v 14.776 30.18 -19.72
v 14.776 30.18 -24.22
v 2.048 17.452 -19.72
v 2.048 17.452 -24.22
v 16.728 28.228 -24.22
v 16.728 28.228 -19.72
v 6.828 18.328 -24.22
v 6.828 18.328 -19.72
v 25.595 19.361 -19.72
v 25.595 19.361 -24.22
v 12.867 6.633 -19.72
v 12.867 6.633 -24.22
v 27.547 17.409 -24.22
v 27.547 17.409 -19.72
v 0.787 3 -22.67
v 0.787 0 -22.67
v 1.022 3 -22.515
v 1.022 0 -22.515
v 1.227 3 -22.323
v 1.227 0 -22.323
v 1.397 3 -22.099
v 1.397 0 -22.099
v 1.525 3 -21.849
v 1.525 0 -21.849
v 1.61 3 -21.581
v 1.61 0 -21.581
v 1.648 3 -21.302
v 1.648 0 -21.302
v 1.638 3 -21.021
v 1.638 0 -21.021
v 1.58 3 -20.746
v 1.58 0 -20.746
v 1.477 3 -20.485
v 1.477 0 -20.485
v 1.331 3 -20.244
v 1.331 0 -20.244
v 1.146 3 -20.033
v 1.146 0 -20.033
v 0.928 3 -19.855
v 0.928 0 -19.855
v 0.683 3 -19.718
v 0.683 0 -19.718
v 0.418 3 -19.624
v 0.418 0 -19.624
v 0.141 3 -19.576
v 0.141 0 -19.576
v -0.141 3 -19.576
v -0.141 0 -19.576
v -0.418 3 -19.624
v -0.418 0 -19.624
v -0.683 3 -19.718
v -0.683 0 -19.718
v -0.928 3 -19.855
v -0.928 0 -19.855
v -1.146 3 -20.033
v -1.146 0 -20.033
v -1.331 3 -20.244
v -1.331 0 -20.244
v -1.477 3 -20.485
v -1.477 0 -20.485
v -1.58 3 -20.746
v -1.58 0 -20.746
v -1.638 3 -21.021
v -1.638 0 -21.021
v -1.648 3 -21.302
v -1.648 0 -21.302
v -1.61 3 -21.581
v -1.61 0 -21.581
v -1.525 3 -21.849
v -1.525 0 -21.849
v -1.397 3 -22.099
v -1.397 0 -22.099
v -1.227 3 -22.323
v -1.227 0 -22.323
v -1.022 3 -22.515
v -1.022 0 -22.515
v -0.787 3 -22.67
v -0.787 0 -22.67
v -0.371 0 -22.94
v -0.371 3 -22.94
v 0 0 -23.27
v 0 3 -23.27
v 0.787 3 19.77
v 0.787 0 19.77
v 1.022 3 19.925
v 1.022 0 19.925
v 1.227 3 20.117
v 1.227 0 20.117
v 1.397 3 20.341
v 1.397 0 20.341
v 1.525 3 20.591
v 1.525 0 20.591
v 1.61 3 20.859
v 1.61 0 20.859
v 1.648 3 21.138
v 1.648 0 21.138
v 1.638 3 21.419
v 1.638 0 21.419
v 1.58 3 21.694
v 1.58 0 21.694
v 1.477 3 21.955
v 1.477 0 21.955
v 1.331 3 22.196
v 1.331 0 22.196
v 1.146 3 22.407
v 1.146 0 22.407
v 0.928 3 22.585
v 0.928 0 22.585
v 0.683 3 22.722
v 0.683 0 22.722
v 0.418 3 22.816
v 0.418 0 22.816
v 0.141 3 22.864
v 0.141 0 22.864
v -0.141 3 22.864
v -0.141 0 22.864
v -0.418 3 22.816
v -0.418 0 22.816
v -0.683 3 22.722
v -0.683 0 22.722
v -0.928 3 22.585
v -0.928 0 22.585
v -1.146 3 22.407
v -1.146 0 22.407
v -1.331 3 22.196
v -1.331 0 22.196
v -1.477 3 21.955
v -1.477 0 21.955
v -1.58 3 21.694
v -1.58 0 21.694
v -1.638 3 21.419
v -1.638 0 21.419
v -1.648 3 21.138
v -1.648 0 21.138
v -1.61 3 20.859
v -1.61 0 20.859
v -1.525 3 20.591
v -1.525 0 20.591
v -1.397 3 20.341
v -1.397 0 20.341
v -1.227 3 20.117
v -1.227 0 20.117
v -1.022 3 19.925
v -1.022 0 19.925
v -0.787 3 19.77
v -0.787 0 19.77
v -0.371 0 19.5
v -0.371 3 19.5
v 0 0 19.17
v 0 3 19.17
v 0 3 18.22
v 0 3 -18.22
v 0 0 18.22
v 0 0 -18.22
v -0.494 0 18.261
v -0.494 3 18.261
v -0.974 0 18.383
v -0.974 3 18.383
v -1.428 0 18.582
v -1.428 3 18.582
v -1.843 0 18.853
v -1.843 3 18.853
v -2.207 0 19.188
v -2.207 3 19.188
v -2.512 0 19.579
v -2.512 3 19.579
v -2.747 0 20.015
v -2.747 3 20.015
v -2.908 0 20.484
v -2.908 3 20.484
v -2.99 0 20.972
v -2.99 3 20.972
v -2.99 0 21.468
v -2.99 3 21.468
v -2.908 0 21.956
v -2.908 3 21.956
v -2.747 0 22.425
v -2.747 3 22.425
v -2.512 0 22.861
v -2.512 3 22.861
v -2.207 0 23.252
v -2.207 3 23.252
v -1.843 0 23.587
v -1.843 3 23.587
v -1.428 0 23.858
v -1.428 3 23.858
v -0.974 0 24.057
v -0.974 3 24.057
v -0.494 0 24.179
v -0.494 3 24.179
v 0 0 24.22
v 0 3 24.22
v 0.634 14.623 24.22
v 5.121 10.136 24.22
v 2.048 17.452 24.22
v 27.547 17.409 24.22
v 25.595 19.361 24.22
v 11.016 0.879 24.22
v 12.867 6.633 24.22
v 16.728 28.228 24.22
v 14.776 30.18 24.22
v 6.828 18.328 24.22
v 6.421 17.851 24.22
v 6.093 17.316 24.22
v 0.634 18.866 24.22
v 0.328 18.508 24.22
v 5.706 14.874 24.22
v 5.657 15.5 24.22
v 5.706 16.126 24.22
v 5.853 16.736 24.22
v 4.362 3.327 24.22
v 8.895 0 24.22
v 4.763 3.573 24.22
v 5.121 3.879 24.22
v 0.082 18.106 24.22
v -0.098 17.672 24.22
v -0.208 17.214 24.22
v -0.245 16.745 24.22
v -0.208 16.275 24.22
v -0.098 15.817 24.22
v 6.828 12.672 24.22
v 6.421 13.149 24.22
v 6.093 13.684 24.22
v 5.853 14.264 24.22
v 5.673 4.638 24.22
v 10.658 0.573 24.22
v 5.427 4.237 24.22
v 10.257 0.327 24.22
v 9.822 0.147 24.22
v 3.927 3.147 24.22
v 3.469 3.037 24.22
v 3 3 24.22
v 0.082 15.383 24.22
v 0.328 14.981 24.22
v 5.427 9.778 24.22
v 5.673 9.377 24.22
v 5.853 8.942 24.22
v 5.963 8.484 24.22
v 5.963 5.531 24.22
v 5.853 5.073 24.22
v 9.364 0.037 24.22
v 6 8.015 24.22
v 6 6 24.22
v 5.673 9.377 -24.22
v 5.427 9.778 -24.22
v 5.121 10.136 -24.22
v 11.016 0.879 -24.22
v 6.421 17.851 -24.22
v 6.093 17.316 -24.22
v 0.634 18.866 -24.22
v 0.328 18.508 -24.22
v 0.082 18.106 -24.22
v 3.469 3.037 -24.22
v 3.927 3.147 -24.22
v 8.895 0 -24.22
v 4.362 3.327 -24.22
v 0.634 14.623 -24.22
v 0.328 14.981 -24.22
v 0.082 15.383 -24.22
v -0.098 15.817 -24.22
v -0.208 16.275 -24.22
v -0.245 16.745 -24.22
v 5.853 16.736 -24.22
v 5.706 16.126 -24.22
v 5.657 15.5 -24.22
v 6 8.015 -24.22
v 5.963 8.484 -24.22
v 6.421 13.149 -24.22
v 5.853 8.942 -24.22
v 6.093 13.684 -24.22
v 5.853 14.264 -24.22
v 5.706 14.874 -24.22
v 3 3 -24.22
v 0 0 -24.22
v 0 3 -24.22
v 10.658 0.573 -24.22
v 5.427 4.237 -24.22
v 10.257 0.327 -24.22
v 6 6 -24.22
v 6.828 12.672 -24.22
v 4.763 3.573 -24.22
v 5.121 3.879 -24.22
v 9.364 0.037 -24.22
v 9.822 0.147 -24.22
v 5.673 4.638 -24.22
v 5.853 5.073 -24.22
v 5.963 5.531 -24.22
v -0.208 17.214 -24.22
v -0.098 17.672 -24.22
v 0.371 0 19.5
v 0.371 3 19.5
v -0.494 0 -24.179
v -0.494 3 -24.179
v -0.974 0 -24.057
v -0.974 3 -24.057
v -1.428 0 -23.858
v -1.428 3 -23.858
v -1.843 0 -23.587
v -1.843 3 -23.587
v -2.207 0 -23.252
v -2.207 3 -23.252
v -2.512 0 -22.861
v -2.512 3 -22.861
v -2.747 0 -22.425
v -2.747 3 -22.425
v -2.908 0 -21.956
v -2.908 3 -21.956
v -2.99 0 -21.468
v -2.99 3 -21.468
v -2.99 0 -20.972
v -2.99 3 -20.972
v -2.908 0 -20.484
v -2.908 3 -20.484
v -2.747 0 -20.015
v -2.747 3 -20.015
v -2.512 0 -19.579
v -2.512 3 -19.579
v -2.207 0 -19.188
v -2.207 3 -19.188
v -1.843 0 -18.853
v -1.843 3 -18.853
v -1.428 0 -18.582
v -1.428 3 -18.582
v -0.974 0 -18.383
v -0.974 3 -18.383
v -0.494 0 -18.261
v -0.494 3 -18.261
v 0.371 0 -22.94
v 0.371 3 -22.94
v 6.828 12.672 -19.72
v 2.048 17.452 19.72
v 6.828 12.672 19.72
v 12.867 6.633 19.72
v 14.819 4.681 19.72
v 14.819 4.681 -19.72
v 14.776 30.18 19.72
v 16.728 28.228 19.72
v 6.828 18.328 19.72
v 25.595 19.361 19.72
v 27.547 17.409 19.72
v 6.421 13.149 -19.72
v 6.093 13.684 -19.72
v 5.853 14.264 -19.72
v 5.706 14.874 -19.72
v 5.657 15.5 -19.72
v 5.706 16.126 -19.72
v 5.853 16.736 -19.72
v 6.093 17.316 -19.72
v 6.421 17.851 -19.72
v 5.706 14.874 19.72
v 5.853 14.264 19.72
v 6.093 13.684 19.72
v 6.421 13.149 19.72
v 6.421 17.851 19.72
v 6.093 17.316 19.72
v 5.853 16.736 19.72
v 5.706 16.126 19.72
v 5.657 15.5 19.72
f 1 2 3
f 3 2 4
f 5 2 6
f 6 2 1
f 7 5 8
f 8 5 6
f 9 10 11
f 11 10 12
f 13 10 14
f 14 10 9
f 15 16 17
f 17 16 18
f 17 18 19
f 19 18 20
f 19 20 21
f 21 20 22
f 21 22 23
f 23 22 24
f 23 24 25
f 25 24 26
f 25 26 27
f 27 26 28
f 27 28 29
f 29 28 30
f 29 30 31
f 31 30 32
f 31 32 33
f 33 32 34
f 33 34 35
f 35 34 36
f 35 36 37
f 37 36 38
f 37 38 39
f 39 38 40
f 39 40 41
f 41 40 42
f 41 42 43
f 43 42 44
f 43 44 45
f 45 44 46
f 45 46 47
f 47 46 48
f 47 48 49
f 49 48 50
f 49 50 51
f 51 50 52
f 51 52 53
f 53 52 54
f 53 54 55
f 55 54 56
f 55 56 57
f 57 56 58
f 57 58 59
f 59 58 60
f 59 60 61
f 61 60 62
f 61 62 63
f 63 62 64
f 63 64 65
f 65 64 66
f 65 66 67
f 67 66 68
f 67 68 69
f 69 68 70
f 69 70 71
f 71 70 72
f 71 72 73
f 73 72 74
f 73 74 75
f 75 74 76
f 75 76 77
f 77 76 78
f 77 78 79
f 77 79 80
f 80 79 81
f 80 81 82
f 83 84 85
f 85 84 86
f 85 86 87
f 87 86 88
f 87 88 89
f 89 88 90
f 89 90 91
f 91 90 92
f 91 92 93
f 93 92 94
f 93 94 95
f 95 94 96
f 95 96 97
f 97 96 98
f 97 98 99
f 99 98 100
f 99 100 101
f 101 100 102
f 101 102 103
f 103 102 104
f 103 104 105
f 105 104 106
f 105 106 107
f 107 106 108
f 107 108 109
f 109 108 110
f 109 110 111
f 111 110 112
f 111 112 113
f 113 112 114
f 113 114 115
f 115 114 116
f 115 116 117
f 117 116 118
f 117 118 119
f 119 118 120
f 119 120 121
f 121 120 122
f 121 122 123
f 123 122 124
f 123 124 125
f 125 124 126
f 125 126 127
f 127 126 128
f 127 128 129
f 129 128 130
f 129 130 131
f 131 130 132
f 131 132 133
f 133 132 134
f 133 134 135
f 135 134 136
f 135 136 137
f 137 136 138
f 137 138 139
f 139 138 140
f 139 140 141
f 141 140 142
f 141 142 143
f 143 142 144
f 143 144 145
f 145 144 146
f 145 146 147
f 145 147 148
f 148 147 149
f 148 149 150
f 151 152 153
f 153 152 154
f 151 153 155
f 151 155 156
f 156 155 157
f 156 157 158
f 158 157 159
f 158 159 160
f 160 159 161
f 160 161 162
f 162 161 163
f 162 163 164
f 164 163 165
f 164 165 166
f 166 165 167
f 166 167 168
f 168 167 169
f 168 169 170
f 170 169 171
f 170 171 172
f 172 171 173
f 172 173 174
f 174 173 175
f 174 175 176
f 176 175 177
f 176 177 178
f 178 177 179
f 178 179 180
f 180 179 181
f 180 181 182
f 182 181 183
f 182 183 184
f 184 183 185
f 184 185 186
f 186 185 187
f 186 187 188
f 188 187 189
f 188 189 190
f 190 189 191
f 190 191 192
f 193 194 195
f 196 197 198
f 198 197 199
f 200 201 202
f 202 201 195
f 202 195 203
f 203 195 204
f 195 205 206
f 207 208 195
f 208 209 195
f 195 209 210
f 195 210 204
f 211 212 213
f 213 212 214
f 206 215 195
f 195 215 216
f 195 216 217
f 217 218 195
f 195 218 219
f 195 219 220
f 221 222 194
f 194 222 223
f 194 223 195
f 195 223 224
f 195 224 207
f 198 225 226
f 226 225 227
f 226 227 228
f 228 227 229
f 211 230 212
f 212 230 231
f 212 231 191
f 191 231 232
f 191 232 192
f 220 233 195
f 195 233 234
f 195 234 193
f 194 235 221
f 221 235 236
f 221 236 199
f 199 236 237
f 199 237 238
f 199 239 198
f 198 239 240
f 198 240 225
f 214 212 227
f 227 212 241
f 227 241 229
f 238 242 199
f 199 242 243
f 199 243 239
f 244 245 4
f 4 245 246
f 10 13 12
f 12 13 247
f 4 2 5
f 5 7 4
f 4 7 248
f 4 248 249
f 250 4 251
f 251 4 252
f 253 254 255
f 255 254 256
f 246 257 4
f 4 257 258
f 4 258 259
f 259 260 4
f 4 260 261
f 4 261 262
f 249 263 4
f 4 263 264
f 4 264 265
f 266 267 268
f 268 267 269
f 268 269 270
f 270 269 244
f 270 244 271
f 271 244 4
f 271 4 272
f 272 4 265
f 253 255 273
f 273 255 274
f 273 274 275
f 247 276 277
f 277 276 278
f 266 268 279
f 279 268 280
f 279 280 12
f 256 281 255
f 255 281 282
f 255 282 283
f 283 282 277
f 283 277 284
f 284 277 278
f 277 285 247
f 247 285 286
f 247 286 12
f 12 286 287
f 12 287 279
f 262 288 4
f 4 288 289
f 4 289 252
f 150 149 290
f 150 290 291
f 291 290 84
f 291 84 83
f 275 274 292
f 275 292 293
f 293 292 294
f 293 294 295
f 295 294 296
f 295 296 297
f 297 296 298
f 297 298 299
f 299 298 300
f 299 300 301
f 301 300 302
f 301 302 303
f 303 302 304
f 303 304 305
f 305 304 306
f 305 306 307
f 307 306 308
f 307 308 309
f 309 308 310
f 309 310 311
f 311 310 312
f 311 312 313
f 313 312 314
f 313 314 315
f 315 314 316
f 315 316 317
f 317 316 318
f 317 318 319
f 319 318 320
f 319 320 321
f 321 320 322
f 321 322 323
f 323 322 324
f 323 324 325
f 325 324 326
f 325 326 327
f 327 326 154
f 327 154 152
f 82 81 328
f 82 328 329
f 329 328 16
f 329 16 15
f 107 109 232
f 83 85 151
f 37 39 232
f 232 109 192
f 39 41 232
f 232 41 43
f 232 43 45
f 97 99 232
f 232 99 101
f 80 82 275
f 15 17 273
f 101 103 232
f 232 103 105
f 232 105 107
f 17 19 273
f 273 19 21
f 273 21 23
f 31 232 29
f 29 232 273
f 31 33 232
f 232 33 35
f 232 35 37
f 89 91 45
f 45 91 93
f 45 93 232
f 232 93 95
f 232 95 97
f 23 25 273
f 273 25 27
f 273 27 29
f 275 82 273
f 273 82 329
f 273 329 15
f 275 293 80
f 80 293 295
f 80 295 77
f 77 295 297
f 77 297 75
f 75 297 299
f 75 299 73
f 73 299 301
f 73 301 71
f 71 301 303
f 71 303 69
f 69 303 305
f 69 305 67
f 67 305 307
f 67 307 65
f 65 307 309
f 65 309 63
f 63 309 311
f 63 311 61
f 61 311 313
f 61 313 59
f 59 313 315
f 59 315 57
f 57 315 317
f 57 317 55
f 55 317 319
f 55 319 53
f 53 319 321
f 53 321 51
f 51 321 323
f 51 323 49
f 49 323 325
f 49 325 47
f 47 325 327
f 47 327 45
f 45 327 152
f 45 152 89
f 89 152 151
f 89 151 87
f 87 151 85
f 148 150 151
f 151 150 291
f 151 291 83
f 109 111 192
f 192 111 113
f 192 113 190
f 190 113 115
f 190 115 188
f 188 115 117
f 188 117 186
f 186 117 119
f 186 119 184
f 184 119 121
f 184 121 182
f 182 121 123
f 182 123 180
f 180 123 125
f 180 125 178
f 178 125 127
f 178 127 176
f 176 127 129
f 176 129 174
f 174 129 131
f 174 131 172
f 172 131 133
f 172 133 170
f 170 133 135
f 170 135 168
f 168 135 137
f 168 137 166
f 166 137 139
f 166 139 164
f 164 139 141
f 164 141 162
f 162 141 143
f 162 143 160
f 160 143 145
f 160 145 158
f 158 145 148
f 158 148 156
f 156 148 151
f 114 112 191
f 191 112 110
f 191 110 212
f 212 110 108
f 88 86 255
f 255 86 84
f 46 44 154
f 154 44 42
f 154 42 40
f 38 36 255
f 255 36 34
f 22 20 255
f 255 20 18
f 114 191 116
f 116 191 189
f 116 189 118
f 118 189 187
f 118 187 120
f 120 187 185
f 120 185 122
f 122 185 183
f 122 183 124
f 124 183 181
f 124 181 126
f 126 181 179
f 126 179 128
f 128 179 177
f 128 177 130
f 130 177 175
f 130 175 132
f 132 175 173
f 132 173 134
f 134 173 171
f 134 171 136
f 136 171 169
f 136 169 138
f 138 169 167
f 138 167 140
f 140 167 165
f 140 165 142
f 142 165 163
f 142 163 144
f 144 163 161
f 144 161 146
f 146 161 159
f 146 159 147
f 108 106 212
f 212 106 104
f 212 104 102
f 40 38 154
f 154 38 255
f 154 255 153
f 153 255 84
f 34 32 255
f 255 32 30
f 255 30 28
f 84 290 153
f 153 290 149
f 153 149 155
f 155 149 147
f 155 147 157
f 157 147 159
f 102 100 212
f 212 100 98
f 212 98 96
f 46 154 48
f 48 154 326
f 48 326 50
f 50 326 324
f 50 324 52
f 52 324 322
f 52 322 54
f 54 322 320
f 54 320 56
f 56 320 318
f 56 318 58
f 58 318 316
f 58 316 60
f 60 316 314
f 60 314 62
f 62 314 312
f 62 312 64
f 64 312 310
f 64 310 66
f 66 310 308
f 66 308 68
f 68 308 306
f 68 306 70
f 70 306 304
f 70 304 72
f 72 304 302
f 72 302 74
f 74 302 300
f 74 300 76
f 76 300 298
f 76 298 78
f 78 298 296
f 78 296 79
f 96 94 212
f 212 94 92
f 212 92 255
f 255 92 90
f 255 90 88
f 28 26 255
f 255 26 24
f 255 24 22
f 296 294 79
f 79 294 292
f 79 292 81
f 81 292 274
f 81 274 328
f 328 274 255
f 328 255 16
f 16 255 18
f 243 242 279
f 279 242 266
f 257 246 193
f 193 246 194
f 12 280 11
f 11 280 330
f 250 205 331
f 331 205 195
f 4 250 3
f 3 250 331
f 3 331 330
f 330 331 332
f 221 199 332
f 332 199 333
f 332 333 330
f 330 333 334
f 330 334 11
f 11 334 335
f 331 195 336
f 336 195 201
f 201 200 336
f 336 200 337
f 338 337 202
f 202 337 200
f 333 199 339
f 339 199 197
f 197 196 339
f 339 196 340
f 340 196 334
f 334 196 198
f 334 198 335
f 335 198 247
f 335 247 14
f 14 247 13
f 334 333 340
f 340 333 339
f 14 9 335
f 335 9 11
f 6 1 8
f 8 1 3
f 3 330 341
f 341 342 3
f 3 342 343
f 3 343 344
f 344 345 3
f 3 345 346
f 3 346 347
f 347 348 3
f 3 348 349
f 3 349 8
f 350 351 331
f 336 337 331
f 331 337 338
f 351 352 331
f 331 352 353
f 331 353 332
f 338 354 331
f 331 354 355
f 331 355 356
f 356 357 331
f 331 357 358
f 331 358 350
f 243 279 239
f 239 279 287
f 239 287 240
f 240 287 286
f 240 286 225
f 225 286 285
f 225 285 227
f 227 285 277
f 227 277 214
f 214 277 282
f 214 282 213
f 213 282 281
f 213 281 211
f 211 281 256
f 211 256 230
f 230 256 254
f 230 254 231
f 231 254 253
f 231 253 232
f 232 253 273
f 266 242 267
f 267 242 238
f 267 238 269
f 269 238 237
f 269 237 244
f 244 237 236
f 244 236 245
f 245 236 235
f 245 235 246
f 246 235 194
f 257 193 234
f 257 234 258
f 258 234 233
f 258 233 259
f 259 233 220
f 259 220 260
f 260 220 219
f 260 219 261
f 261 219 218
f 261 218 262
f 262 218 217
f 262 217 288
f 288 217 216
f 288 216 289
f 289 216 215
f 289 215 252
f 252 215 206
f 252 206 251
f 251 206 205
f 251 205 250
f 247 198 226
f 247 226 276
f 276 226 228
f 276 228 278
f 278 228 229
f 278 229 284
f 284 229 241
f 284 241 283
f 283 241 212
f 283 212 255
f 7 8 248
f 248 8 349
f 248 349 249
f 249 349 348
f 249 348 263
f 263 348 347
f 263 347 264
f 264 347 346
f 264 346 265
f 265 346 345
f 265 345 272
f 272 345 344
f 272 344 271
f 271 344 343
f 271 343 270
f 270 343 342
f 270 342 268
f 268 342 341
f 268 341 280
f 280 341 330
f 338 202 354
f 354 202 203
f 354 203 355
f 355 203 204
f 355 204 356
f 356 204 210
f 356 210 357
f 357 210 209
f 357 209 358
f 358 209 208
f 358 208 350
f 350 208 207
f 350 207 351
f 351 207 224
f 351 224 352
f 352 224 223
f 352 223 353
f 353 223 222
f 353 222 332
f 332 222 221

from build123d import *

# Parameters (mm, degrees)
BOSS_EXTRUDE1_DEPTH      = 3
BOSS_EXTRUDE2_DEPTH      = 24.22
BOSS_EXTRUDE2_DEPTH_BACK = 24.22
SKETCH4_W                = 39.44
SKETCH4_H                = 18
CUT_EXTRUDE2_DEPTH       = 49.314655701
FILLET1_R                = 3
FILLET2_R                = 3
FILLET3_R                = 4


with BuildPart() as part:
    # Sketch1 → Boss-Extrude1 (new body)
    with BuildSketch(Plane(origin=(0, 0, 0), x_dir=(1, 0, 0), z_dir=(0, 1, 0))):
        with BuildLine():
            ThreePointArc((-2, 18.983932023), (-1.070466269, 18.417482923), (0, 18.22))
            Line((0, 18.22), (0, -18.22))
            ThreePointArc((0, -18.22), (-1.070466269, -18.417482923), (-2, -18.983932023))
            ThreePointArc((-2, -18.983932023), (-2.802517077, -22.290466269), (0, -24.22))
            Line((0, -24.22), (3, -24.22))
            Line((3, -24.22), (3, 24.22))
            Line((3, 24.22), (0, 24.22))
            ThreePointArc((0, 24.22), (-2.802517077, 22.290466269), (-2, 18.983932023))
        make_face()
        with BuildLine():
            ThreePointArc((0.787400787, -19.77), (1.41804642, -20.376409845), (1.65, -21.22))
            ThreePointArc((1.65, -21.22), (-0.843590155, -22.63804642), (-0.787400787, -19.77))
            ThreePointArc((-0.787400787, -19.77), (-0.370606333, -19.500307136), (0, -19.17))
            ThreePointArc((0, -19.17), (0.370606333, -19.500307136), (0.787400787, -19.77))
        make_face(mode=Mode.SUBTRACT)
        with BuildLine():
            ThreePointArc((0.787400787, 22.67), (1.41804642, 22.063590155), (1.65, 21.22))
            ThreePointArc((1.65, 21.22), (-0.843590155, 19.80195358), (-0.787400787, 22.67))
            ThreePointArc((-0.787400787, 22.67), (-0.370606333, 22.939692864), (0, 23.27))
            ThreePointArc((0, 23.27), (0.370606333, 22.939692864), (0.787400787, 22.67))
        make_face(mode=Mode.SUBTRACT)
    extrude(amount=BOSS_EXTRUDE1_DEPTH)

    # Sketch2 → Boss-Extrude2 (add, two sides: drawn at the far end of the back side and taken through both)
    with BuildSketch(Plane.XY.offset(-BOSS_EXTRUDE2_DEPTH_BACK)):
        Polygon((3, 3), (3, 0), (10.137467504, 0), (27.546655814, 17.409188309), (25.595041097, 19.360803025), (12.867119036, 6.632880964), (4, 15.5), (16.727922061, 28.227922061), (14.776307345, 30.179536777), (2.048385284, 17.451614716), (0.634171722, 18.865828278), (-1.487148622, 16.744507935), (6, 9.257359313), (6, 3), align=None)
    extrude(amount=BOSS_EXTRUDE2_DEPTH + BOSS_EXTRUDE2_DEPTH_BACK)

    # Sketch4 → Cut-Extrude2 (cut, through all)
    with BuildSketch(Plane(origin=(-7.701614716, 7.701614716, 0), x_dir=(0, 0, 1), z_dir=(-0.7071067811865439, 0.7071067811865511, 0))):
        with Locations((0, 22.788582233)):
            Rectangle(SKETCH4_W, SKETCH4_H)
    extrude(amount=-CUT_EXTRUDE2_DEPTH, mode=Mode.SUBTRACT)

    # Fillet1
    fillet1_edges = [part.edges().sort_by_distance(p)[0] for p in [
        (6, 3, 0),
        (6, 9.257359313, 0),
    ]]
    fillet(fillet1_edges, radius=FILLET1_R)

    # Fillet2
    fillet2_edges = [part.edges().sort_by_distance(p)[0] for p in [
        (-1.487148622, 16.744507935, 0),
        (10.137467504, 0, 0),
    ]]
    fillet(fillet2_edges, radius=FILLET2_R - 0.0001)  # a hair under: the kernel refuses the full size

    # Fillet3
    fillet3_edges = [part.edges().sort_by_distance(p)[0] for p in [
        (4, 15.5, -21.97),
        (4, 15.5, 21.97),
    ]]
    fillet(fillet3_edges, radius=FILLET3_R)


solid = part.part
